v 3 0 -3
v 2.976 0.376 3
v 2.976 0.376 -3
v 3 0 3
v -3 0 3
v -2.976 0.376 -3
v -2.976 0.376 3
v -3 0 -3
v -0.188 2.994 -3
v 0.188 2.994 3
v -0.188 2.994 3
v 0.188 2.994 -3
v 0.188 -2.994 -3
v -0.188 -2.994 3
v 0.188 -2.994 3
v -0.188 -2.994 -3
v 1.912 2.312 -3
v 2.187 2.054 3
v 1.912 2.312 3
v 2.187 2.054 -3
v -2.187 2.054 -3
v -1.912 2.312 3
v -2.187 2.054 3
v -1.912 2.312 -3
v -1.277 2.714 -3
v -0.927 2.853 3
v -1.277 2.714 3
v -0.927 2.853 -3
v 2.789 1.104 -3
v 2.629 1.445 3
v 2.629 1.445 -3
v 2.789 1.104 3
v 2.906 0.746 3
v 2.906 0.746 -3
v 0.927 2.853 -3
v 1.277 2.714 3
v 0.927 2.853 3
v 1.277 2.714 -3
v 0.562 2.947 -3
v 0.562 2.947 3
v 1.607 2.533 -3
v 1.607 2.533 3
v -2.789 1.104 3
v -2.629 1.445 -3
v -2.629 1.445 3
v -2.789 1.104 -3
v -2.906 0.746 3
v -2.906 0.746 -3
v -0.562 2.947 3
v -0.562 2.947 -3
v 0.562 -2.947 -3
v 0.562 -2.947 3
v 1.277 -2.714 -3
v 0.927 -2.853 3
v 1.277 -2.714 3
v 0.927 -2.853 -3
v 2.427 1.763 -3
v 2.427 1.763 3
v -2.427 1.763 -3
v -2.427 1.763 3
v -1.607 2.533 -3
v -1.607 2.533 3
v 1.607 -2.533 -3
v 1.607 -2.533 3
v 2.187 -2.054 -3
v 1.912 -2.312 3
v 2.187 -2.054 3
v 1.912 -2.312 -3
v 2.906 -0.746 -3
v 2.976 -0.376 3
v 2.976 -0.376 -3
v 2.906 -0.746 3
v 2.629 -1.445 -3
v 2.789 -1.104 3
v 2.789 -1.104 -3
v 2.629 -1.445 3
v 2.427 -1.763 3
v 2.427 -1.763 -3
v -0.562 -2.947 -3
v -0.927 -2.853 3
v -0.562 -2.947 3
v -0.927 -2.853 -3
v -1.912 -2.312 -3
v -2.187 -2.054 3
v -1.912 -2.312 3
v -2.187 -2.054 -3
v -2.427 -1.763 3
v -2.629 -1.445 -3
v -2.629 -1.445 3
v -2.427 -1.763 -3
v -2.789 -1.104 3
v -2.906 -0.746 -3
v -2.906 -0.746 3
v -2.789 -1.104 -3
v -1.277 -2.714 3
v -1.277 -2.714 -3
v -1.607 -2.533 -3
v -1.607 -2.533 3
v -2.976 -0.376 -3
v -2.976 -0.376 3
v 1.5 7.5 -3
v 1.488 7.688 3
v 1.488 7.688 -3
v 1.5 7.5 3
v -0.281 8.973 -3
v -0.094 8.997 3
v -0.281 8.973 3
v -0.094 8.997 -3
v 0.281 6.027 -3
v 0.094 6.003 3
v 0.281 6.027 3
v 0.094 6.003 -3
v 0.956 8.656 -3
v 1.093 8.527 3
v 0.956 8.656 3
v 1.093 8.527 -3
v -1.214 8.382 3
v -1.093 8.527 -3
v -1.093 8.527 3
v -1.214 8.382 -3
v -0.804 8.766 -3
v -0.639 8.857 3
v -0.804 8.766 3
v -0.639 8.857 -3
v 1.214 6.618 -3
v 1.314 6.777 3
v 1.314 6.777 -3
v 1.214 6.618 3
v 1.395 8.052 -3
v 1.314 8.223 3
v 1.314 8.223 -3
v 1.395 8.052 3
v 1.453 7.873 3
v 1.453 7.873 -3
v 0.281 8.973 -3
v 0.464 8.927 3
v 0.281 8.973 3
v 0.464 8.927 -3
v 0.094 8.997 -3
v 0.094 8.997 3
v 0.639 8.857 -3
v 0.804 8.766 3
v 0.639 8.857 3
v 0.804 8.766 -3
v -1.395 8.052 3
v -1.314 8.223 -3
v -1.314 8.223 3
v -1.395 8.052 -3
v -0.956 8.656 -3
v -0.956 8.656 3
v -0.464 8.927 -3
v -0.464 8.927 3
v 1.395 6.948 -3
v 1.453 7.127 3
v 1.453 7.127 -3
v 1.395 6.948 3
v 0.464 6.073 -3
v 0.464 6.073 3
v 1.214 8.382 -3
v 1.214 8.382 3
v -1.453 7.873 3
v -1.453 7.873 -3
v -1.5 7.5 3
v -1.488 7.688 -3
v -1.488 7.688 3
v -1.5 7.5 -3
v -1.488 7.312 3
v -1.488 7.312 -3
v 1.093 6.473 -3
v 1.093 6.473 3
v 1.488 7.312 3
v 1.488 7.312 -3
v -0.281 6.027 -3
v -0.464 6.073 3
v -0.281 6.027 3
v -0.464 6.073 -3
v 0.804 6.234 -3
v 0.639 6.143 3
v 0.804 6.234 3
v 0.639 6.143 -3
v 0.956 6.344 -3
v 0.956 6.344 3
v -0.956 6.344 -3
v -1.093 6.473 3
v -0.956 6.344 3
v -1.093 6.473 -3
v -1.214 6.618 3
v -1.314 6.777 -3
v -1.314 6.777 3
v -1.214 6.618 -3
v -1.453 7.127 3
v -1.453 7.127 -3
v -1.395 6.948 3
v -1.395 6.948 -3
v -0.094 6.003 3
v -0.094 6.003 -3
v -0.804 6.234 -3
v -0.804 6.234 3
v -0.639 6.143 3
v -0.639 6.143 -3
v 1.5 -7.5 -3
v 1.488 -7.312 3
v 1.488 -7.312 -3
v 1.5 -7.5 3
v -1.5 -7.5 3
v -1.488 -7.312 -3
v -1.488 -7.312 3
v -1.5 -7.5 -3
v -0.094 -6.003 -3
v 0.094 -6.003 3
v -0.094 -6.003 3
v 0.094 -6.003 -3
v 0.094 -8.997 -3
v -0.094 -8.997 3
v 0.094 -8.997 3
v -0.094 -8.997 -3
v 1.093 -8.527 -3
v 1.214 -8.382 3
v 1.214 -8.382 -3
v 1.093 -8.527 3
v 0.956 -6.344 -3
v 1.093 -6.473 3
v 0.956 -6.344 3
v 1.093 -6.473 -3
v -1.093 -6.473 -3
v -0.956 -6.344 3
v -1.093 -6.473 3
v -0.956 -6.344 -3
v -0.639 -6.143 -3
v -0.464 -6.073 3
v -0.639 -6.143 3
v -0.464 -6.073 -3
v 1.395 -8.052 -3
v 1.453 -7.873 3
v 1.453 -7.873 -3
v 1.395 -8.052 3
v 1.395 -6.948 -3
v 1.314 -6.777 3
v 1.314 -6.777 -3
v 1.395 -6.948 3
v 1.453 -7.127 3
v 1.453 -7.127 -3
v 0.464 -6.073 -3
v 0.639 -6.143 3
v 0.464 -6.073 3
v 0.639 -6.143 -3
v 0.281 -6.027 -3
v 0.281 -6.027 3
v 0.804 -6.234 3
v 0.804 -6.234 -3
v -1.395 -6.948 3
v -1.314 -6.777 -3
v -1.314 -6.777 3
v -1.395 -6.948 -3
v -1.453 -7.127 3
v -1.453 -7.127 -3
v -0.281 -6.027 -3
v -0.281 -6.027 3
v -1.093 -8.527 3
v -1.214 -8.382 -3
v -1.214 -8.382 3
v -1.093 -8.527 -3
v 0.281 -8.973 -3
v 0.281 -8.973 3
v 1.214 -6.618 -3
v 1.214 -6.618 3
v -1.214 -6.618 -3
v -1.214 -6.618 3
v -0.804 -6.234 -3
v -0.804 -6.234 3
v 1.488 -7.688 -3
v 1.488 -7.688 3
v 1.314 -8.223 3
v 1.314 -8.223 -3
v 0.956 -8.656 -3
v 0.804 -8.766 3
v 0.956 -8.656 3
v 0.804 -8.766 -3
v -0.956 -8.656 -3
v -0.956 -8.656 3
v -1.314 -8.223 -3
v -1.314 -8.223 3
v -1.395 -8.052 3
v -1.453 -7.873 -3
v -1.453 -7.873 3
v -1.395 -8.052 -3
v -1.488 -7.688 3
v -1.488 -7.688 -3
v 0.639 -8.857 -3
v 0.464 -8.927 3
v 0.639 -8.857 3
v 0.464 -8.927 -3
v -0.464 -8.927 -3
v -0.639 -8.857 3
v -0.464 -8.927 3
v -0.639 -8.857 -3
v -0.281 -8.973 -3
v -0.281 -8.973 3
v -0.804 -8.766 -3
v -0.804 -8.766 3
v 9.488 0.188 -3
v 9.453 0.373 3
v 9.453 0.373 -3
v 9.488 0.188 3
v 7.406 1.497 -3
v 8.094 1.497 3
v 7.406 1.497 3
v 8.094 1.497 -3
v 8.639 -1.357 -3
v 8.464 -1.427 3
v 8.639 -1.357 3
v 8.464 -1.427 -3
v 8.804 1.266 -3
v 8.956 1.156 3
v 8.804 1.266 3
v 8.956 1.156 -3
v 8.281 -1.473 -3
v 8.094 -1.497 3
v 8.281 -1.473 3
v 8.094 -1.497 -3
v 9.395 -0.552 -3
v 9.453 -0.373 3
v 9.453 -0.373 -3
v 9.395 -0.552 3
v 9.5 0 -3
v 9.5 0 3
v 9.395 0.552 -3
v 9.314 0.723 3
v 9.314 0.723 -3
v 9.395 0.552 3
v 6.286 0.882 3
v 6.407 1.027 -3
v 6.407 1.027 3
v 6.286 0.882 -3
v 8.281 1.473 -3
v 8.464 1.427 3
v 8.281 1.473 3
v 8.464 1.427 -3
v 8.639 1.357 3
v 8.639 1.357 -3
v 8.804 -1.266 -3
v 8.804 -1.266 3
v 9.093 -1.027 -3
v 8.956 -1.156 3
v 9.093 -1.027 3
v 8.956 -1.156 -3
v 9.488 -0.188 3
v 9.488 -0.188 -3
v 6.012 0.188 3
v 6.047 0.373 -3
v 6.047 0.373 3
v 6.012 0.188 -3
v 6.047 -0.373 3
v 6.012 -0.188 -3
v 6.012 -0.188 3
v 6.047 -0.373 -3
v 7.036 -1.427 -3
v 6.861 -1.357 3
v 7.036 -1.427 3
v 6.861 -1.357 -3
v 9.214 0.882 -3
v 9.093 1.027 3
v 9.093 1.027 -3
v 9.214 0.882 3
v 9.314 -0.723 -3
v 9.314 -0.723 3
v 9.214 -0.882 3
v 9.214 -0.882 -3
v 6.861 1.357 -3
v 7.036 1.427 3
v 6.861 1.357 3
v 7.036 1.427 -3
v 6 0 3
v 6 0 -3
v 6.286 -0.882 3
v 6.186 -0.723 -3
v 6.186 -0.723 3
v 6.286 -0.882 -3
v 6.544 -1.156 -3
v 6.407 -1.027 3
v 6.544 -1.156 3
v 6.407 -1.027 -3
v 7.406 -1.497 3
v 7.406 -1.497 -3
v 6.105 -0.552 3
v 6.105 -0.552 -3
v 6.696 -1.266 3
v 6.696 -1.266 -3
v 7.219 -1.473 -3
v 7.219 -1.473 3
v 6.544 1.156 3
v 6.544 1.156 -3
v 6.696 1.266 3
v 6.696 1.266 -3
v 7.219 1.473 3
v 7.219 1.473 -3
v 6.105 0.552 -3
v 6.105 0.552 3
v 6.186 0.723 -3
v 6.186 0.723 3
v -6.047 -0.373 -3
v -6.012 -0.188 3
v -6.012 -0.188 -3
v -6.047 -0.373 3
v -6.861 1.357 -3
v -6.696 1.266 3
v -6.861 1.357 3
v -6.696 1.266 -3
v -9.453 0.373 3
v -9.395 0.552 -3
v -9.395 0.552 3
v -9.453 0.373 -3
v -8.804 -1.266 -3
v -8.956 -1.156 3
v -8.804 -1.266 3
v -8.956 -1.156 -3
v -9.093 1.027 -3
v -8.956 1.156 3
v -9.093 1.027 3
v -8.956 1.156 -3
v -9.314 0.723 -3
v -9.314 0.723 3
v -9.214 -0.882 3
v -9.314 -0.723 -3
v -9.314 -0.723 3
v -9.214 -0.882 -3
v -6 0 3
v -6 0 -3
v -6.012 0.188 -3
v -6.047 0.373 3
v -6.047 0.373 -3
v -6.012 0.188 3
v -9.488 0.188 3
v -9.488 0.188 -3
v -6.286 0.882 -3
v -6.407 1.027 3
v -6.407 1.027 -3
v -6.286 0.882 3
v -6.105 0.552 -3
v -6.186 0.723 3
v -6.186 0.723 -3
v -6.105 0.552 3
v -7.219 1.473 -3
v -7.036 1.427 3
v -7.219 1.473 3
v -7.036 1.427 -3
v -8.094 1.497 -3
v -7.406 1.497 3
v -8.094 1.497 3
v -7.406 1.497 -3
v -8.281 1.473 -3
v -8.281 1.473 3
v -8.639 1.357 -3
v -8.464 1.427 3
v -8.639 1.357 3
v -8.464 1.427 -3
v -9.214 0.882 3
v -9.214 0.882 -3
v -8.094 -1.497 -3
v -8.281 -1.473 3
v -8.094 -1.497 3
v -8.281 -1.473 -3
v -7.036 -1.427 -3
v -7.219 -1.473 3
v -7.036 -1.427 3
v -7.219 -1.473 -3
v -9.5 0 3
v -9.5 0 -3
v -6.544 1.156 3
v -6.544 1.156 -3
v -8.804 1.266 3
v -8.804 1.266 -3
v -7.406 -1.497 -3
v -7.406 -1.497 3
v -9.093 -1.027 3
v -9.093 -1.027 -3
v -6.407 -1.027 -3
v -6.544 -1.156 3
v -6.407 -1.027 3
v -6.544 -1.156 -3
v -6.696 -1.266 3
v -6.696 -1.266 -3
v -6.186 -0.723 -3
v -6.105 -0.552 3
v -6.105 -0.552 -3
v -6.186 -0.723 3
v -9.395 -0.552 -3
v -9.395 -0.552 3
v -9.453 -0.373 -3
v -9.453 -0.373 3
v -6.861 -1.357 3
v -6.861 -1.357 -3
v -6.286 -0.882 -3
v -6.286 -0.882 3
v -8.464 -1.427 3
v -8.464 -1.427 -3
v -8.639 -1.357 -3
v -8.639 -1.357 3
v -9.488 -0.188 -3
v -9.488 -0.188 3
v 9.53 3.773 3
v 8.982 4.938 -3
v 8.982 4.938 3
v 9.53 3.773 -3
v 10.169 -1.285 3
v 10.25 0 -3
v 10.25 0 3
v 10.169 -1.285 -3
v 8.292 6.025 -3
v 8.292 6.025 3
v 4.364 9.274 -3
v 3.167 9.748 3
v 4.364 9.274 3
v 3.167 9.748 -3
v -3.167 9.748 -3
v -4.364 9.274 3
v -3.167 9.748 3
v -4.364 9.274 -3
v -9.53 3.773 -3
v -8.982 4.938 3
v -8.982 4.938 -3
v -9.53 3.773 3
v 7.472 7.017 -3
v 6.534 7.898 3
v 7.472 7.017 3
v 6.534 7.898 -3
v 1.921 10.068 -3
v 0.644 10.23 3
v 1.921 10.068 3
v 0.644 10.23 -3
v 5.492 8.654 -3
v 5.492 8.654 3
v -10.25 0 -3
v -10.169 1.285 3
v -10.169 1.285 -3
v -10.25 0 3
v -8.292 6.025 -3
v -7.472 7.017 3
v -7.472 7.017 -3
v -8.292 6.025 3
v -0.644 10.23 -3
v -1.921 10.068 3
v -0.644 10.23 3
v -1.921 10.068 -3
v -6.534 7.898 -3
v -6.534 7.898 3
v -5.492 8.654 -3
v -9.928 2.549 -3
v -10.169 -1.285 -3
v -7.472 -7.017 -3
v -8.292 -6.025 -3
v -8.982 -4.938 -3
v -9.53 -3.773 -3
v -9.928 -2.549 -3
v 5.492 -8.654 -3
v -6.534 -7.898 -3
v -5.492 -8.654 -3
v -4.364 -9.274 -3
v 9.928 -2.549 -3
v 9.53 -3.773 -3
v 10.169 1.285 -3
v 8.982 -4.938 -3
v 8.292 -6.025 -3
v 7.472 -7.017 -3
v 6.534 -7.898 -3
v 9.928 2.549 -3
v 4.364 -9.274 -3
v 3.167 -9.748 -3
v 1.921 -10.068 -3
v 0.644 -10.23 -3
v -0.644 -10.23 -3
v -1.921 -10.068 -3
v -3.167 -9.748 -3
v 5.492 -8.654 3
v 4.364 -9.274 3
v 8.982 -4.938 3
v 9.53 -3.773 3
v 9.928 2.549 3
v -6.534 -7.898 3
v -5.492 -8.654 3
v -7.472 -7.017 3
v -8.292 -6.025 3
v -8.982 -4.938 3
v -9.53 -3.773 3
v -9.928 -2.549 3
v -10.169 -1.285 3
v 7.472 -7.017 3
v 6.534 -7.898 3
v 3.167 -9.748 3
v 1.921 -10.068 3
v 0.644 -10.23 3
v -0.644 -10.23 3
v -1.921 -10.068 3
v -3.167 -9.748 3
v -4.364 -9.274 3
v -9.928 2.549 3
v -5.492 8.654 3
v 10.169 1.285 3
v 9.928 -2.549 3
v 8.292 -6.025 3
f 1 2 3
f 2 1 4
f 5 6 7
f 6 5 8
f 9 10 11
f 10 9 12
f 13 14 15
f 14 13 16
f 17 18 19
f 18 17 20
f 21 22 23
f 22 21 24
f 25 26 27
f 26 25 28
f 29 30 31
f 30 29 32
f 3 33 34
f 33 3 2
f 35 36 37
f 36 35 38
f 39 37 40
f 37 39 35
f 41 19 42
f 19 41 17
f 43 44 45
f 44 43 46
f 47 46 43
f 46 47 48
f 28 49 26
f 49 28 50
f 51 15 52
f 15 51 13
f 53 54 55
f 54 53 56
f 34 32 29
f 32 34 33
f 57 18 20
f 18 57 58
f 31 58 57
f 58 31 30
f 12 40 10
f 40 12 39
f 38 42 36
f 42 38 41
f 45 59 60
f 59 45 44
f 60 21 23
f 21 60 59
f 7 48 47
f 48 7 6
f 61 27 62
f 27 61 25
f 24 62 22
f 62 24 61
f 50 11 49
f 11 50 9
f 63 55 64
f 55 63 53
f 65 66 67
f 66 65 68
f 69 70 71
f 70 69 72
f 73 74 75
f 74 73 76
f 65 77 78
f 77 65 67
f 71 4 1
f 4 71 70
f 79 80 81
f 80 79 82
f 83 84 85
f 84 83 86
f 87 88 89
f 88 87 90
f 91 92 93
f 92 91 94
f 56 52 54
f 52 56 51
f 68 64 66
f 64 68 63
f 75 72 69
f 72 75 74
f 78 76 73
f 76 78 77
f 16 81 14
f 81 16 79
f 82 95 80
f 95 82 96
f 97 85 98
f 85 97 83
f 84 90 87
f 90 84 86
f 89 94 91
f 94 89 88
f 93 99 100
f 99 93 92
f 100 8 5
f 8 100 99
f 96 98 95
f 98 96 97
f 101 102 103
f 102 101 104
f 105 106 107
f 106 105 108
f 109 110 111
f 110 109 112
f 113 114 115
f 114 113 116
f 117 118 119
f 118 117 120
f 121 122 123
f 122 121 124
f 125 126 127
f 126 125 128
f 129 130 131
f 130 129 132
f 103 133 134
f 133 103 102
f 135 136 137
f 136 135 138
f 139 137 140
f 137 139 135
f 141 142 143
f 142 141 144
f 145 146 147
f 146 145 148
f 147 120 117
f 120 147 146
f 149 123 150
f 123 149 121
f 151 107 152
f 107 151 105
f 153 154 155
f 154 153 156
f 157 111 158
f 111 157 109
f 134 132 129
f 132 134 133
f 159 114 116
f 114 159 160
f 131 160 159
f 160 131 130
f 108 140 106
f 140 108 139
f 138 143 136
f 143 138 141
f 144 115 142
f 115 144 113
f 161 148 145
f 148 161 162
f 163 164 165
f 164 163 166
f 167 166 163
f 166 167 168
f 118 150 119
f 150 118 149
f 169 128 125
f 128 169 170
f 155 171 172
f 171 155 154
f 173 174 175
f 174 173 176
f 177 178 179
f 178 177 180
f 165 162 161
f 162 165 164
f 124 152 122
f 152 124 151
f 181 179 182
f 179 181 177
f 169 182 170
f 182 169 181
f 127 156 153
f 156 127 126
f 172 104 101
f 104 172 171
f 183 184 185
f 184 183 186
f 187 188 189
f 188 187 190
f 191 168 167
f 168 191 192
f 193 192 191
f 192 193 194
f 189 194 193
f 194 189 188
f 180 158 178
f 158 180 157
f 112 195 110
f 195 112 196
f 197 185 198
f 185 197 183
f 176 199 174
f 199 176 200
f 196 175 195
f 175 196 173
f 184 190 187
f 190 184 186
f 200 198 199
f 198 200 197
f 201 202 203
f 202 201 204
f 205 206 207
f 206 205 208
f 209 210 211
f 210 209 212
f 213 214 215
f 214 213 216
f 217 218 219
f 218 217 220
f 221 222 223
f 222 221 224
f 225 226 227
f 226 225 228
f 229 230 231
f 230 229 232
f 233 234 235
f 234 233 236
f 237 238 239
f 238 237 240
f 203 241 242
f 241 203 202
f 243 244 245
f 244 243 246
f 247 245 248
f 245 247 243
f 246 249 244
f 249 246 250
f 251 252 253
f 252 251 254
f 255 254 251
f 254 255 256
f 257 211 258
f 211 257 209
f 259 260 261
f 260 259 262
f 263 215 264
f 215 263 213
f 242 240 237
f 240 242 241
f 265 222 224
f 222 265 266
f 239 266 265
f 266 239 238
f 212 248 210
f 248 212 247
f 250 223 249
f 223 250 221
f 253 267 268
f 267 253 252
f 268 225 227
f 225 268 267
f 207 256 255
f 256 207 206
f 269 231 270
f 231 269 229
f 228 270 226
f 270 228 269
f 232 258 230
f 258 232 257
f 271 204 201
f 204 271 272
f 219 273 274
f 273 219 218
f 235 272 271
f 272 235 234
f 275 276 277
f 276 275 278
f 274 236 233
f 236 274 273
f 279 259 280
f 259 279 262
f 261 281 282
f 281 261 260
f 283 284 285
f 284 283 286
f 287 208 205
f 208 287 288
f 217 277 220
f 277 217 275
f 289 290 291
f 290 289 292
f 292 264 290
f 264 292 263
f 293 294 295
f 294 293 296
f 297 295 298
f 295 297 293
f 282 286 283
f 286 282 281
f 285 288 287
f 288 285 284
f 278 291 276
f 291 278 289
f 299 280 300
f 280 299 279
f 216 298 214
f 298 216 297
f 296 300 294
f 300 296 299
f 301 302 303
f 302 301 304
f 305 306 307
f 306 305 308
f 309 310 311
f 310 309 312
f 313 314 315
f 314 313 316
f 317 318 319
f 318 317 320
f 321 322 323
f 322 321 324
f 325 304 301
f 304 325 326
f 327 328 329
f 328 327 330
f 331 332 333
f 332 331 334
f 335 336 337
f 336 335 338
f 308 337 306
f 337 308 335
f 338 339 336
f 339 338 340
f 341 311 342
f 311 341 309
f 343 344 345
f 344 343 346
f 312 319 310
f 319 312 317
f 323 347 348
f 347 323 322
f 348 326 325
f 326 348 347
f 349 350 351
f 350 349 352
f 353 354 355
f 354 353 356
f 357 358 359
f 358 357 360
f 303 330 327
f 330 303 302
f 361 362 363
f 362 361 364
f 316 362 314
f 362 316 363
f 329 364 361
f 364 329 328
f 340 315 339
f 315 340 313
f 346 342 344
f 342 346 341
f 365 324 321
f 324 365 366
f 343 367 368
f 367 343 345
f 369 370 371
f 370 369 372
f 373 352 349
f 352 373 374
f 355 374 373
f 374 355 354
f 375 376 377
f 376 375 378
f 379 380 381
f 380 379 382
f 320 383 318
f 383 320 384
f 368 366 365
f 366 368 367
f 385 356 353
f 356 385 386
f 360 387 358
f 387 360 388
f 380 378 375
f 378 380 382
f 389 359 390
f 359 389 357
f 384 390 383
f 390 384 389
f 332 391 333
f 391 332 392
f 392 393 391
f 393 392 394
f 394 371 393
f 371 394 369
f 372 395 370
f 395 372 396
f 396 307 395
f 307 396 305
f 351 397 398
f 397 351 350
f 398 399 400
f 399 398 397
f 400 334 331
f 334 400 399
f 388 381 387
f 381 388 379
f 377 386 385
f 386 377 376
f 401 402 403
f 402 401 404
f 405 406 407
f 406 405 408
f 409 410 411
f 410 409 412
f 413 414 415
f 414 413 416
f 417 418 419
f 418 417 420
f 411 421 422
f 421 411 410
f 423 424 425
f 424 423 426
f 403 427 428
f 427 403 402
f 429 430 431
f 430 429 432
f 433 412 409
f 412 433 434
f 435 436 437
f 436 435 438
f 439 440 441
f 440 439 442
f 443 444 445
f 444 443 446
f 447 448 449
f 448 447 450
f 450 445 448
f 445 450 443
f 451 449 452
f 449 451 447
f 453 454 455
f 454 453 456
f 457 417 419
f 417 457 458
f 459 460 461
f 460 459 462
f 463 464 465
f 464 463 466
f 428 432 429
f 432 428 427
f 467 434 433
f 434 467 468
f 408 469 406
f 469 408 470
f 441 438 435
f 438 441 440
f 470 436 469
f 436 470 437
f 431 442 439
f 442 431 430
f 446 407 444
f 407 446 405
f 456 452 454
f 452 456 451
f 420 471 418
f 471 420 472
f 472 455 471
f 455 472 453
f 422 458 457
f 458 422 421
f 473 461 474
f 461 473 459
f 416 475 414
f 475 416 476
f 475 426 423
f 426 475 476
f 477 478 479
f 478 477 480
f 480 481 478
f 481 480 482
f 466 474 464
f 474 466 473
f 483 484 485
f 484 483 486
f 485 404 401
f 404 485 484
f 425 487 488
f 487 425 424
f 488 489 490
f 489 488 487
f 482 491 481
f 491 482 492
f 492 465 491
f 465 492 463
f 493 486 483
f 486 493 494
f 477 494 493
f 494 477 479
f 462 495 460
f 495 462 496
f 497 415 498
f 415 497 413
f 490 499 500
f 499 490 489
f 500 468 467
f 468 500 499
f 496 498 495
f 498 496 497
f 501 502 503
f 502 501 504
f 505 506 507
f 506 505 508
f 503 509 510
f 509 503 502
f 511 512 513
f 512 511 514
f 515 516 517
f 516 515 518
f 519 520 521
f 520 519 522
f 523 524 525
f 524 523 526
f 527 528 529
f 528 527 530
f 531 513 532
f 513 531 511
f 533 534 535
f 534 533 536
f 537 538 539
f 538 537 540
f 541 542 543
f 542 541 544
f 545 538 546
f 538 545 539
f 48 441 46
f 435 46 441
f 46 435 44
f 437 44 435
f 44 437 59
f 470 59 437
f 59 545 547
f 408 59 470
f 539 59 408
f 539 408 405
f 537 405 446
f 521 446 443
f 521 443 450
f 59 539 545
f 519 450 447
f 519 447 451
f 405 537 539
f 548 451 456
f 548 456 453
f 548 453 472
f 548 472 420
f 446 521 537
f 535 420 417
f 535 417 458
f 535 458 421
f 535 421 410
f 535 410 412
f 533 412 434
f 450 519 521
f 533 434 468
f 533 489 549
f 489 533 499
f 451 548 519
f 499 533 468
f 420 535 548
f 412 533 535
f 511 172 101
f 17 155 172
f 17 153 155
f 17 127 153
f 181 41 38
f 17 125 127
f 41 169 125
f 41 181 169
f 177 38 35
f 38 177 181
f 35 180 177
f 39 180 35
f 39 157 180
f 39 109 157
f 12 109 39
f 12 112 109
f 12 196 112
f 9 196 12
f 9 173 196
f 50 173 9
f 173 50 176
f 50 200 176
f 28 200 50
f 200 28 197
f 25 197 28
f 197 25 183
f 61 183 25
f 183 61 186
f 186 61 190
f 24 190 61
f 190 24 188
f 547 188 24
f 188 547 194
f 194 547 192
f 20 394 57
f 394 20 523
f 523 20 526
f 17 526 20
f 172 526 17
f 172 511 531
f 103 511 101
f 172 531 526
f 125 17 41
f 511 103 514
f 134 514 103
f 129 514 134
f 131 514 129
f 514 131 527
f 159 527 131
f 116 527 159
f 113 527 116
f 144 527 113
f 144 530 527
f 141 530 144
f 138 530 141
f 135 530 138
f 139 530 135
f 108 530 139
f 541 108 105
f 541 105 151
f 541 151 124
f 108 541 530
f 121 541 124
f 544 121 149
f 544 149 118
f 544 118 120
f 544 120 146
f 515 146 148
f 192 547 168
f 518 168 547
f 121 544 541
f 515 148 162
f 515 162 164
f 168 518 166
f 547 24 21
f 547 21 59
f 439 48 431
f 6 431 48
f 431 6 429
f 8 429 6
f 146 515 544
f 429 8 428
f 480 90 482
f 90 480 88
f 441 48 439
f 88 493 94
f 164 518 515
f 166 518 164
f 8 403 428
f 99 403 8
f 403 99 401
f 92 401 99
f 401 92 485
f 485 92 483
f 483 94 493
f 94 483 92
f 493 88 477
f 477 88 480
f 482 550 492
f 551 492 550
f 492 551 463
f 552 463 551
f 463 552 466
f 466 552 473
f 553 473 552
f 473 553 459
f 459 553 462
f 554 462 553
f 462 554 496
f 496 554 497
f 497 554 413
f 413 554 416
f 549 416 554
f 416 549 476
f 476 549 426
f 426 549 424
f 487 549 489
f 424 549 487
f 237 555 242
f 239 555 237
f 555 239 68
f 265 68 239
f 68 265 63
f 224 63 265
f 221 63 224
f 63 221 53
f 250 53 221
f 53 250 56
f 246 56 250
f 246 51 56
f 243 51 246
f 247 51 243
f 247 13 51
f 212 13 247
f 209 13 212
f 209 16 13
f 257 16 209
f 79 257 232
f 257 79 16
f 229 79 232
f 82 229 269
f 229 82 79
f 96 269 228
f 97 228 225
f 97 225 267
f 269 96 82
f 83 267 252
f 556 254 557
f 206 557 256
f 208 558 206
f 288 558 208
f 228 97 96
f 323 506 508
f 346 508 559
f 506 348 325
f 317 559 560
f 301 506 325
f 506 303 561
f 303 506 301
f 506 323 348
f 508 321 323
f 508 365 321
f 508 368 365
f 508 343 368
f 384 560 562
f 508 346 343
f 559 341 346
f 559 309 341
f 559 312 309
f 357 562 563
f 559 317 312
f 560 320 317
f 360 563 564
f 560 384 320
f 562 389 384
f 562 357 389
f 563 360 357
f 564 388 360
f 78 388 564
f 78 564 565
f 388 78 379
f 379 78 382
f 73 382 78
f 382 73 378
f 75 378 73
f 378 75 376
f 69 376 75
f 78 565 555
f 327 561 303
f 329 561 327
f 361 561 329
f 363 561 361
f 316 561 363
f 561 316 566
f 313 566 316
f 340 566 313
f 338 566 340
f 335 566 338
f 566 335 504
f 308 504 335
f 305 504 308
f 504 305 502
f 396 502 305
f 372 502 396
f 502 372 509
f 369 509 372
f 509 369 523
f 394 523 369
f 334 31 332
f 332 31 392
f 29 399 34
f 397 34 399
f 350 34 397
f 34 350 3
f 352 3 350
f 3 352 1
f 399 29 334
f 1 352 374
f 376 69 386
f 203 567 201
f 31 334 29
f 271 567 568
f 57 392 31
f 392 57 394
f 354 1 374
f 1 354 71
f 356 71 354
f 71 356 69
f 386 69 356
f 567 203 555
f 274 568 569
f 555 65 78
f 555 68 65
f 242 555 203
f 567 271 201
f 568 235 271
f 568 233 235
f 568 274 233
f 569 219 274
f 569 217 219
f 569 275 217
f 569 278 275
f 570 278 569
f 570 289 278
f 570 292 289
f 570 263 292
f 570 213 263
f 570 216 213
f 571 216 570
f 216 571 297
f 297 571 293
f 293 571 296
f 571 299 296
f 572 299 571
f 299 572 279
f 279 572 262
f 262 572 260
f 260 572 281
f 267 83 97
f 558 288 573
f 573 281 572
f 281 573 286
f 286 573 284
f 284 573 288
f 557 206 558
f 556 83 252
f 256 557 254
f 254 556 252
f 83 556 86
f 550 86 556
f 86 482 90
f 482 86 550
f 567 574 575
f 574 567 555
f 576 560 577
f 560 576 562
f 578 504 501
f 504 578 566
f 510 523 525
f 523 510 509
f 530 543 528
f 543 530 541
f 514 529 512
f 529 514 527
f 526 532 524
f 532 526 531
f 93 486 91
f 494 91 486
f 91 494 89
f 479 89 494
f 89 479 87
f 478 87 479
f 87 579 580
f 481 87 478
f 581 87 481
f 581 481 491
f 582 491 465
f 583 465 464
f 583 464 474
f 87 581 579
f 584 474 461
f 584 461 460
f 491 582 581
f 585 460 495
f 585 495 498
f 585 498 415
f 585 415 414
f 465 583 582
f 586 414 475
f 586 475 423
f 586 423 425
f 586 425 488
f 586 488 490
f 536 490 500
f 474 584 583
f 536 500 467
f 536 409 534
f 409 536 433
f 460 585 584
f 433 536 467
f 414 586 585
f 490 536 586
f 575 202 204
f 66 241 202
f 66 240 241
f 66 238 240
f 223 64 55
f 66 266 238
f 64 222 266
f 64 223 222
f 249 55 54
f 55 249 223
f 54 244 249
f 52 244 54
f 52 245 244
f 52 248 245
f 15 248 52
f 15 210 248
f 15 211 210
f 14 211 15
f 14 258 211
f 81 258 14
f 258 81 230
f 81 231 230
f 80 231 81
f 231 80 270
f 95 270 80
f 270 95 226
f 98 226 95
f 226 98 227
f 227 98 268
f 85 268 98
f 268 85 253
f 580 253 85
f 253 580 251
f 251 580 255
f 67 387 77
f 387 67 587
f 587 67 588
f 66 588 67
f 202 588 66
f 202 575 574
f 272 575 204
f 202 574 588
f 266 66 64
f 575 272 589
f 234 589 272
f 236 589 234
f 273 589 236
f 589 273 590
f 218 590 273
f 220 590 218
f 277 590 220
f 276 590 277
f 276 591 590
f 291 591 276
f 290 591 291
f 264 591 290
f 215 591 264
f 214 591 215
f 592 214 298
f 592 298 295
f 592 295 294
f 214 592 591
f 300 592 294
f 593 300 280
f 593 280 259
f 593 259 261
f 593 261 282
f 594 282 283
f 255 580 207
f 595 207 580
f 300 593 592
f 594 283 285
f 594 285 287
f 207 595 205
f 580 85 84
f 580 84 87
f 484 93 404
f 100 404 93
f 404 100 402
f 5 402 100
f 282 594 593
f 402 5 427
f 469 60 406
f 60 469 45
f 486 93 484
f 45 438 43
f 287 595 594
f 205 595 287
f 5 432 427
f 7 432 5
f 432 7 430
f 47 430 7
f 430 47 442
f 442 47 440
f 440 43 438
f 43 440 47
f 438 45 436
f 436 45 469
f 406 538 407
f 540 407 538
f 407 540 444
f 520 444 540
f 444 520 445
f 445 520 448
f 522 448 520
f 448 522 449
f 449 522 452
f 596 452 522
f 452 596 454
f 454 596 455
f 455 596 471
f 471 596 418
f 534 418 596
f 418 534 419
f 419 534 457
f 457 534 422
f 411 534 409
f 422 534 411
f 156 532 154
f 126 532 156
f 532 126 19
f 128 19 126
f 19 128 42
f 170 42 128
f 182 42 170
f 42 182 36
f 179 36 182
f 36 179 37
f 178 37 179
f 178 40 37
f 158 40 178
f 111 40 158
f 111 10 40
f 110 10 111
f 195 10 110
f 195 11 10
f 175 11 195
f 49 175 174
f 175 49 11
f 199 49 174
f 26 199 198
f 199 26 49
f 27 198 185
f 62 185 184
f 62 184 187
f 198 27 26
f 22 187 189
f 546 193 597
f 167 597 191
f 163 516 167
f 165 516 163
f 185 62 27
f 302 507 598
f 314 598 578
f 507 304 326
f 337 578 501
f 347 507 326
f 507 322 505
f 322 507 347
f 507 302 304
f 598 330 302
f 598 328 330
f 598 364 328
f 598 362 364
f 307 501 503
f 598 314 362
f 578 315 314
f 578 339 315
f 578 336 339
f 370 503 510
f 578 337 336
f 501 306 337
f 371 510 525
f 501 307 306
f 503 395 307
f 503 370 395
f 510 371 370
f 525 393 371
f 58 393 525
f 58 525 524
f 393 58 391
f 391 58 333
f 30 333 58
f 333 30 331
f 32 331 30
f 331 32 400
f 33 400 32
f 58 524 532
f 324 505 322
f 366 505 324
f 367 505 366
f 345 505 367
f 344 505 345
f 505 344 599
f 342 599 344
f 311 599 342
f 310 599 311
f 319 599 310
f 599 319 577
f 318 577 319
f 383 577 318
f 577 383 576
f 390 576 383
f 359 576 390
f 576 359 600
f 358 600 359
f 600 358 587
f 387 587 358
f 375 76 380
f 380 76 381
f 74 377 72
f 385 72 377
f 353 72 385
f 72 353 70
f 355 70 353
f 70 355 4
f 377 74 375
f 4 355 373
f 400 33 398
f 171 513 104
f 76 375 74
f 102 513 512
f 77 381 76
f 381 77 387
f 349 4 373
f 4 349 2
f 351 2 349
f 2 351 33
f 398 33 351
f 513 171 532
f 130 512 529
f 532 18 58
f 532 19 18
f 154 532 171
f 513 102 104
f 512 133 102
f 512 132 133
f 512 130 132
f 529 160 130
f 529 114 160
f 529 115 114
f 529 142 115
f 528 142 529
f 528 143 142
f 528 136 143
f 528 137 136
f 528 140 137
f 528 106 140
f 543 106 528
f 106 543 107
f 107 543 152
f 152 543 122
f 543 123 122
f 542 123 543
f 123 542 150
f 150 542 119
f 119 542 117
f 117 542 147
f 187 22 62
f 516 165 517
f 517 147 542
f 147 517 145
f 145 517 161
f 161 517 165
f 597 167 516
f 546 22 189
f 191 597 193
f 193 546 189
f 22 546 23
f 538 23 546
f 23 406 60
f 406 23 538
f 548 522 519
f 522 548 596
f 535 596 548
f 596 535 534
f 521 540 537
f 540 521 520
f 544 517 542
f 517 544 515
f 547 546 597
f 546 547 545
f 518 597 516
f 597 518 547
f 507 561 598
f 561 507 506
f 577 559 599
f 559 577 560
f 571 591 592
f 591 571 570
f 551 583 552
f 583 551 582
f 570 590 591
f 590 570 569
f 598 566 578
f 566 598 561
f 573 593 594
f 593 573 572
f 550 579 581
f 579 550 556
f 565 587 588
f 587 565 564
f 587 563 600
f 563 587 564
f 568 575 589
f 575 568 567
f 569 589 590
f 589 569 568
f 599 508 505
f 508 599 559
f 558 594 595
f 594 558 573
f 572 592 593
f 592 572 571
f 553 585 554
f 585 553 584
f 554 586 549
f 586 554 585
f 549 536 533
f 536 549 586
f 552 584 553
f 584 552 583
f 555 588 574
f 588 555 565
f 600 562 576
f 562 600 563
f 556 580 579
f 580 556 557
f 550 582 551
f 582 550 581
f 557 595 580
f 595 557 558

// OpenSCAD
$fn = 50;


difference() {
	union() {
		translate(v = [0, 0, -3.0000000000]) {
			rotate(a = [0, 0, 0]) {
				cylinder(h = 6, r = 10.2500000000);
			}
		}
	}
	union() {
		translate(v = [0, 0, -125.0000000000]) {
			rotate(a = [0, 0, 0]) {
				cylinder(h = 250, r = 3.0000000000);
			}
		}
		translate(v = [0, 7.5000000000, -125.0000000000]) {
			rotate(a = [0, 0, 0]) {
				cylinder(h = 250, r = 1.5000000000);
			}
		}
		translate(v = [0, -7.5000000000, -125.0000000000]) {
			rotate(a = [0, 0, 0]) {
				cylinder(h = 250, r = 1.5000000000);
			}
		}
		translate(v = [7.7500000000, 0, -125.0000000000]) {
			rotate(a = [0, 0, 0]) {
				hull() {
					translate(v = [0.2500000000, 0, 0]) {
						rotate(a = [0, 0, 0]) {
							translate(v = [0, 0, 0]) {
								rotate(a = [0, 0, 0]) {
									cylinder(h = 250, r = 1.5000000000);
								}
							}
						}
					}
					translate(v = [-0.2500000000, 0, 0]) {
						rotate(a = [0, 0, 0]) {
							translate(v = [0, 0, 0]) {
								rotate(a = [0, 0, 0]) {
									cylinder(h = 250, r = 1.5000000000);
								}
							}
						}
					}
				}
			}
		}
		translate(v = [-7.7500000000, 0, -125.0000000000]) {
			rotate(a = [0, 0, 0]) {
				hull() {
					translate(v = [0.2500000000, 0, 0]) {
						rotate(a = [0, 0, 0]) {
							translate(v = [0, 0, 0]) {
								rotate(a = [0, 0, 0]) {
									cylinder(h = 250, r = 1.5000000000);
								}
							}
						}
					}
					translate(v = [-0.2500000000, 0, 0]) {
						rotate(a = [0, 0, 0]) {
							translate(v = [0, 0, 0]) {
								rotate(a = [0, 0, 0]) {
									cylinder(h = 250, r = 1.5000000000);
								}
							}
						}
					}
				}
			}
		}
	}
}
